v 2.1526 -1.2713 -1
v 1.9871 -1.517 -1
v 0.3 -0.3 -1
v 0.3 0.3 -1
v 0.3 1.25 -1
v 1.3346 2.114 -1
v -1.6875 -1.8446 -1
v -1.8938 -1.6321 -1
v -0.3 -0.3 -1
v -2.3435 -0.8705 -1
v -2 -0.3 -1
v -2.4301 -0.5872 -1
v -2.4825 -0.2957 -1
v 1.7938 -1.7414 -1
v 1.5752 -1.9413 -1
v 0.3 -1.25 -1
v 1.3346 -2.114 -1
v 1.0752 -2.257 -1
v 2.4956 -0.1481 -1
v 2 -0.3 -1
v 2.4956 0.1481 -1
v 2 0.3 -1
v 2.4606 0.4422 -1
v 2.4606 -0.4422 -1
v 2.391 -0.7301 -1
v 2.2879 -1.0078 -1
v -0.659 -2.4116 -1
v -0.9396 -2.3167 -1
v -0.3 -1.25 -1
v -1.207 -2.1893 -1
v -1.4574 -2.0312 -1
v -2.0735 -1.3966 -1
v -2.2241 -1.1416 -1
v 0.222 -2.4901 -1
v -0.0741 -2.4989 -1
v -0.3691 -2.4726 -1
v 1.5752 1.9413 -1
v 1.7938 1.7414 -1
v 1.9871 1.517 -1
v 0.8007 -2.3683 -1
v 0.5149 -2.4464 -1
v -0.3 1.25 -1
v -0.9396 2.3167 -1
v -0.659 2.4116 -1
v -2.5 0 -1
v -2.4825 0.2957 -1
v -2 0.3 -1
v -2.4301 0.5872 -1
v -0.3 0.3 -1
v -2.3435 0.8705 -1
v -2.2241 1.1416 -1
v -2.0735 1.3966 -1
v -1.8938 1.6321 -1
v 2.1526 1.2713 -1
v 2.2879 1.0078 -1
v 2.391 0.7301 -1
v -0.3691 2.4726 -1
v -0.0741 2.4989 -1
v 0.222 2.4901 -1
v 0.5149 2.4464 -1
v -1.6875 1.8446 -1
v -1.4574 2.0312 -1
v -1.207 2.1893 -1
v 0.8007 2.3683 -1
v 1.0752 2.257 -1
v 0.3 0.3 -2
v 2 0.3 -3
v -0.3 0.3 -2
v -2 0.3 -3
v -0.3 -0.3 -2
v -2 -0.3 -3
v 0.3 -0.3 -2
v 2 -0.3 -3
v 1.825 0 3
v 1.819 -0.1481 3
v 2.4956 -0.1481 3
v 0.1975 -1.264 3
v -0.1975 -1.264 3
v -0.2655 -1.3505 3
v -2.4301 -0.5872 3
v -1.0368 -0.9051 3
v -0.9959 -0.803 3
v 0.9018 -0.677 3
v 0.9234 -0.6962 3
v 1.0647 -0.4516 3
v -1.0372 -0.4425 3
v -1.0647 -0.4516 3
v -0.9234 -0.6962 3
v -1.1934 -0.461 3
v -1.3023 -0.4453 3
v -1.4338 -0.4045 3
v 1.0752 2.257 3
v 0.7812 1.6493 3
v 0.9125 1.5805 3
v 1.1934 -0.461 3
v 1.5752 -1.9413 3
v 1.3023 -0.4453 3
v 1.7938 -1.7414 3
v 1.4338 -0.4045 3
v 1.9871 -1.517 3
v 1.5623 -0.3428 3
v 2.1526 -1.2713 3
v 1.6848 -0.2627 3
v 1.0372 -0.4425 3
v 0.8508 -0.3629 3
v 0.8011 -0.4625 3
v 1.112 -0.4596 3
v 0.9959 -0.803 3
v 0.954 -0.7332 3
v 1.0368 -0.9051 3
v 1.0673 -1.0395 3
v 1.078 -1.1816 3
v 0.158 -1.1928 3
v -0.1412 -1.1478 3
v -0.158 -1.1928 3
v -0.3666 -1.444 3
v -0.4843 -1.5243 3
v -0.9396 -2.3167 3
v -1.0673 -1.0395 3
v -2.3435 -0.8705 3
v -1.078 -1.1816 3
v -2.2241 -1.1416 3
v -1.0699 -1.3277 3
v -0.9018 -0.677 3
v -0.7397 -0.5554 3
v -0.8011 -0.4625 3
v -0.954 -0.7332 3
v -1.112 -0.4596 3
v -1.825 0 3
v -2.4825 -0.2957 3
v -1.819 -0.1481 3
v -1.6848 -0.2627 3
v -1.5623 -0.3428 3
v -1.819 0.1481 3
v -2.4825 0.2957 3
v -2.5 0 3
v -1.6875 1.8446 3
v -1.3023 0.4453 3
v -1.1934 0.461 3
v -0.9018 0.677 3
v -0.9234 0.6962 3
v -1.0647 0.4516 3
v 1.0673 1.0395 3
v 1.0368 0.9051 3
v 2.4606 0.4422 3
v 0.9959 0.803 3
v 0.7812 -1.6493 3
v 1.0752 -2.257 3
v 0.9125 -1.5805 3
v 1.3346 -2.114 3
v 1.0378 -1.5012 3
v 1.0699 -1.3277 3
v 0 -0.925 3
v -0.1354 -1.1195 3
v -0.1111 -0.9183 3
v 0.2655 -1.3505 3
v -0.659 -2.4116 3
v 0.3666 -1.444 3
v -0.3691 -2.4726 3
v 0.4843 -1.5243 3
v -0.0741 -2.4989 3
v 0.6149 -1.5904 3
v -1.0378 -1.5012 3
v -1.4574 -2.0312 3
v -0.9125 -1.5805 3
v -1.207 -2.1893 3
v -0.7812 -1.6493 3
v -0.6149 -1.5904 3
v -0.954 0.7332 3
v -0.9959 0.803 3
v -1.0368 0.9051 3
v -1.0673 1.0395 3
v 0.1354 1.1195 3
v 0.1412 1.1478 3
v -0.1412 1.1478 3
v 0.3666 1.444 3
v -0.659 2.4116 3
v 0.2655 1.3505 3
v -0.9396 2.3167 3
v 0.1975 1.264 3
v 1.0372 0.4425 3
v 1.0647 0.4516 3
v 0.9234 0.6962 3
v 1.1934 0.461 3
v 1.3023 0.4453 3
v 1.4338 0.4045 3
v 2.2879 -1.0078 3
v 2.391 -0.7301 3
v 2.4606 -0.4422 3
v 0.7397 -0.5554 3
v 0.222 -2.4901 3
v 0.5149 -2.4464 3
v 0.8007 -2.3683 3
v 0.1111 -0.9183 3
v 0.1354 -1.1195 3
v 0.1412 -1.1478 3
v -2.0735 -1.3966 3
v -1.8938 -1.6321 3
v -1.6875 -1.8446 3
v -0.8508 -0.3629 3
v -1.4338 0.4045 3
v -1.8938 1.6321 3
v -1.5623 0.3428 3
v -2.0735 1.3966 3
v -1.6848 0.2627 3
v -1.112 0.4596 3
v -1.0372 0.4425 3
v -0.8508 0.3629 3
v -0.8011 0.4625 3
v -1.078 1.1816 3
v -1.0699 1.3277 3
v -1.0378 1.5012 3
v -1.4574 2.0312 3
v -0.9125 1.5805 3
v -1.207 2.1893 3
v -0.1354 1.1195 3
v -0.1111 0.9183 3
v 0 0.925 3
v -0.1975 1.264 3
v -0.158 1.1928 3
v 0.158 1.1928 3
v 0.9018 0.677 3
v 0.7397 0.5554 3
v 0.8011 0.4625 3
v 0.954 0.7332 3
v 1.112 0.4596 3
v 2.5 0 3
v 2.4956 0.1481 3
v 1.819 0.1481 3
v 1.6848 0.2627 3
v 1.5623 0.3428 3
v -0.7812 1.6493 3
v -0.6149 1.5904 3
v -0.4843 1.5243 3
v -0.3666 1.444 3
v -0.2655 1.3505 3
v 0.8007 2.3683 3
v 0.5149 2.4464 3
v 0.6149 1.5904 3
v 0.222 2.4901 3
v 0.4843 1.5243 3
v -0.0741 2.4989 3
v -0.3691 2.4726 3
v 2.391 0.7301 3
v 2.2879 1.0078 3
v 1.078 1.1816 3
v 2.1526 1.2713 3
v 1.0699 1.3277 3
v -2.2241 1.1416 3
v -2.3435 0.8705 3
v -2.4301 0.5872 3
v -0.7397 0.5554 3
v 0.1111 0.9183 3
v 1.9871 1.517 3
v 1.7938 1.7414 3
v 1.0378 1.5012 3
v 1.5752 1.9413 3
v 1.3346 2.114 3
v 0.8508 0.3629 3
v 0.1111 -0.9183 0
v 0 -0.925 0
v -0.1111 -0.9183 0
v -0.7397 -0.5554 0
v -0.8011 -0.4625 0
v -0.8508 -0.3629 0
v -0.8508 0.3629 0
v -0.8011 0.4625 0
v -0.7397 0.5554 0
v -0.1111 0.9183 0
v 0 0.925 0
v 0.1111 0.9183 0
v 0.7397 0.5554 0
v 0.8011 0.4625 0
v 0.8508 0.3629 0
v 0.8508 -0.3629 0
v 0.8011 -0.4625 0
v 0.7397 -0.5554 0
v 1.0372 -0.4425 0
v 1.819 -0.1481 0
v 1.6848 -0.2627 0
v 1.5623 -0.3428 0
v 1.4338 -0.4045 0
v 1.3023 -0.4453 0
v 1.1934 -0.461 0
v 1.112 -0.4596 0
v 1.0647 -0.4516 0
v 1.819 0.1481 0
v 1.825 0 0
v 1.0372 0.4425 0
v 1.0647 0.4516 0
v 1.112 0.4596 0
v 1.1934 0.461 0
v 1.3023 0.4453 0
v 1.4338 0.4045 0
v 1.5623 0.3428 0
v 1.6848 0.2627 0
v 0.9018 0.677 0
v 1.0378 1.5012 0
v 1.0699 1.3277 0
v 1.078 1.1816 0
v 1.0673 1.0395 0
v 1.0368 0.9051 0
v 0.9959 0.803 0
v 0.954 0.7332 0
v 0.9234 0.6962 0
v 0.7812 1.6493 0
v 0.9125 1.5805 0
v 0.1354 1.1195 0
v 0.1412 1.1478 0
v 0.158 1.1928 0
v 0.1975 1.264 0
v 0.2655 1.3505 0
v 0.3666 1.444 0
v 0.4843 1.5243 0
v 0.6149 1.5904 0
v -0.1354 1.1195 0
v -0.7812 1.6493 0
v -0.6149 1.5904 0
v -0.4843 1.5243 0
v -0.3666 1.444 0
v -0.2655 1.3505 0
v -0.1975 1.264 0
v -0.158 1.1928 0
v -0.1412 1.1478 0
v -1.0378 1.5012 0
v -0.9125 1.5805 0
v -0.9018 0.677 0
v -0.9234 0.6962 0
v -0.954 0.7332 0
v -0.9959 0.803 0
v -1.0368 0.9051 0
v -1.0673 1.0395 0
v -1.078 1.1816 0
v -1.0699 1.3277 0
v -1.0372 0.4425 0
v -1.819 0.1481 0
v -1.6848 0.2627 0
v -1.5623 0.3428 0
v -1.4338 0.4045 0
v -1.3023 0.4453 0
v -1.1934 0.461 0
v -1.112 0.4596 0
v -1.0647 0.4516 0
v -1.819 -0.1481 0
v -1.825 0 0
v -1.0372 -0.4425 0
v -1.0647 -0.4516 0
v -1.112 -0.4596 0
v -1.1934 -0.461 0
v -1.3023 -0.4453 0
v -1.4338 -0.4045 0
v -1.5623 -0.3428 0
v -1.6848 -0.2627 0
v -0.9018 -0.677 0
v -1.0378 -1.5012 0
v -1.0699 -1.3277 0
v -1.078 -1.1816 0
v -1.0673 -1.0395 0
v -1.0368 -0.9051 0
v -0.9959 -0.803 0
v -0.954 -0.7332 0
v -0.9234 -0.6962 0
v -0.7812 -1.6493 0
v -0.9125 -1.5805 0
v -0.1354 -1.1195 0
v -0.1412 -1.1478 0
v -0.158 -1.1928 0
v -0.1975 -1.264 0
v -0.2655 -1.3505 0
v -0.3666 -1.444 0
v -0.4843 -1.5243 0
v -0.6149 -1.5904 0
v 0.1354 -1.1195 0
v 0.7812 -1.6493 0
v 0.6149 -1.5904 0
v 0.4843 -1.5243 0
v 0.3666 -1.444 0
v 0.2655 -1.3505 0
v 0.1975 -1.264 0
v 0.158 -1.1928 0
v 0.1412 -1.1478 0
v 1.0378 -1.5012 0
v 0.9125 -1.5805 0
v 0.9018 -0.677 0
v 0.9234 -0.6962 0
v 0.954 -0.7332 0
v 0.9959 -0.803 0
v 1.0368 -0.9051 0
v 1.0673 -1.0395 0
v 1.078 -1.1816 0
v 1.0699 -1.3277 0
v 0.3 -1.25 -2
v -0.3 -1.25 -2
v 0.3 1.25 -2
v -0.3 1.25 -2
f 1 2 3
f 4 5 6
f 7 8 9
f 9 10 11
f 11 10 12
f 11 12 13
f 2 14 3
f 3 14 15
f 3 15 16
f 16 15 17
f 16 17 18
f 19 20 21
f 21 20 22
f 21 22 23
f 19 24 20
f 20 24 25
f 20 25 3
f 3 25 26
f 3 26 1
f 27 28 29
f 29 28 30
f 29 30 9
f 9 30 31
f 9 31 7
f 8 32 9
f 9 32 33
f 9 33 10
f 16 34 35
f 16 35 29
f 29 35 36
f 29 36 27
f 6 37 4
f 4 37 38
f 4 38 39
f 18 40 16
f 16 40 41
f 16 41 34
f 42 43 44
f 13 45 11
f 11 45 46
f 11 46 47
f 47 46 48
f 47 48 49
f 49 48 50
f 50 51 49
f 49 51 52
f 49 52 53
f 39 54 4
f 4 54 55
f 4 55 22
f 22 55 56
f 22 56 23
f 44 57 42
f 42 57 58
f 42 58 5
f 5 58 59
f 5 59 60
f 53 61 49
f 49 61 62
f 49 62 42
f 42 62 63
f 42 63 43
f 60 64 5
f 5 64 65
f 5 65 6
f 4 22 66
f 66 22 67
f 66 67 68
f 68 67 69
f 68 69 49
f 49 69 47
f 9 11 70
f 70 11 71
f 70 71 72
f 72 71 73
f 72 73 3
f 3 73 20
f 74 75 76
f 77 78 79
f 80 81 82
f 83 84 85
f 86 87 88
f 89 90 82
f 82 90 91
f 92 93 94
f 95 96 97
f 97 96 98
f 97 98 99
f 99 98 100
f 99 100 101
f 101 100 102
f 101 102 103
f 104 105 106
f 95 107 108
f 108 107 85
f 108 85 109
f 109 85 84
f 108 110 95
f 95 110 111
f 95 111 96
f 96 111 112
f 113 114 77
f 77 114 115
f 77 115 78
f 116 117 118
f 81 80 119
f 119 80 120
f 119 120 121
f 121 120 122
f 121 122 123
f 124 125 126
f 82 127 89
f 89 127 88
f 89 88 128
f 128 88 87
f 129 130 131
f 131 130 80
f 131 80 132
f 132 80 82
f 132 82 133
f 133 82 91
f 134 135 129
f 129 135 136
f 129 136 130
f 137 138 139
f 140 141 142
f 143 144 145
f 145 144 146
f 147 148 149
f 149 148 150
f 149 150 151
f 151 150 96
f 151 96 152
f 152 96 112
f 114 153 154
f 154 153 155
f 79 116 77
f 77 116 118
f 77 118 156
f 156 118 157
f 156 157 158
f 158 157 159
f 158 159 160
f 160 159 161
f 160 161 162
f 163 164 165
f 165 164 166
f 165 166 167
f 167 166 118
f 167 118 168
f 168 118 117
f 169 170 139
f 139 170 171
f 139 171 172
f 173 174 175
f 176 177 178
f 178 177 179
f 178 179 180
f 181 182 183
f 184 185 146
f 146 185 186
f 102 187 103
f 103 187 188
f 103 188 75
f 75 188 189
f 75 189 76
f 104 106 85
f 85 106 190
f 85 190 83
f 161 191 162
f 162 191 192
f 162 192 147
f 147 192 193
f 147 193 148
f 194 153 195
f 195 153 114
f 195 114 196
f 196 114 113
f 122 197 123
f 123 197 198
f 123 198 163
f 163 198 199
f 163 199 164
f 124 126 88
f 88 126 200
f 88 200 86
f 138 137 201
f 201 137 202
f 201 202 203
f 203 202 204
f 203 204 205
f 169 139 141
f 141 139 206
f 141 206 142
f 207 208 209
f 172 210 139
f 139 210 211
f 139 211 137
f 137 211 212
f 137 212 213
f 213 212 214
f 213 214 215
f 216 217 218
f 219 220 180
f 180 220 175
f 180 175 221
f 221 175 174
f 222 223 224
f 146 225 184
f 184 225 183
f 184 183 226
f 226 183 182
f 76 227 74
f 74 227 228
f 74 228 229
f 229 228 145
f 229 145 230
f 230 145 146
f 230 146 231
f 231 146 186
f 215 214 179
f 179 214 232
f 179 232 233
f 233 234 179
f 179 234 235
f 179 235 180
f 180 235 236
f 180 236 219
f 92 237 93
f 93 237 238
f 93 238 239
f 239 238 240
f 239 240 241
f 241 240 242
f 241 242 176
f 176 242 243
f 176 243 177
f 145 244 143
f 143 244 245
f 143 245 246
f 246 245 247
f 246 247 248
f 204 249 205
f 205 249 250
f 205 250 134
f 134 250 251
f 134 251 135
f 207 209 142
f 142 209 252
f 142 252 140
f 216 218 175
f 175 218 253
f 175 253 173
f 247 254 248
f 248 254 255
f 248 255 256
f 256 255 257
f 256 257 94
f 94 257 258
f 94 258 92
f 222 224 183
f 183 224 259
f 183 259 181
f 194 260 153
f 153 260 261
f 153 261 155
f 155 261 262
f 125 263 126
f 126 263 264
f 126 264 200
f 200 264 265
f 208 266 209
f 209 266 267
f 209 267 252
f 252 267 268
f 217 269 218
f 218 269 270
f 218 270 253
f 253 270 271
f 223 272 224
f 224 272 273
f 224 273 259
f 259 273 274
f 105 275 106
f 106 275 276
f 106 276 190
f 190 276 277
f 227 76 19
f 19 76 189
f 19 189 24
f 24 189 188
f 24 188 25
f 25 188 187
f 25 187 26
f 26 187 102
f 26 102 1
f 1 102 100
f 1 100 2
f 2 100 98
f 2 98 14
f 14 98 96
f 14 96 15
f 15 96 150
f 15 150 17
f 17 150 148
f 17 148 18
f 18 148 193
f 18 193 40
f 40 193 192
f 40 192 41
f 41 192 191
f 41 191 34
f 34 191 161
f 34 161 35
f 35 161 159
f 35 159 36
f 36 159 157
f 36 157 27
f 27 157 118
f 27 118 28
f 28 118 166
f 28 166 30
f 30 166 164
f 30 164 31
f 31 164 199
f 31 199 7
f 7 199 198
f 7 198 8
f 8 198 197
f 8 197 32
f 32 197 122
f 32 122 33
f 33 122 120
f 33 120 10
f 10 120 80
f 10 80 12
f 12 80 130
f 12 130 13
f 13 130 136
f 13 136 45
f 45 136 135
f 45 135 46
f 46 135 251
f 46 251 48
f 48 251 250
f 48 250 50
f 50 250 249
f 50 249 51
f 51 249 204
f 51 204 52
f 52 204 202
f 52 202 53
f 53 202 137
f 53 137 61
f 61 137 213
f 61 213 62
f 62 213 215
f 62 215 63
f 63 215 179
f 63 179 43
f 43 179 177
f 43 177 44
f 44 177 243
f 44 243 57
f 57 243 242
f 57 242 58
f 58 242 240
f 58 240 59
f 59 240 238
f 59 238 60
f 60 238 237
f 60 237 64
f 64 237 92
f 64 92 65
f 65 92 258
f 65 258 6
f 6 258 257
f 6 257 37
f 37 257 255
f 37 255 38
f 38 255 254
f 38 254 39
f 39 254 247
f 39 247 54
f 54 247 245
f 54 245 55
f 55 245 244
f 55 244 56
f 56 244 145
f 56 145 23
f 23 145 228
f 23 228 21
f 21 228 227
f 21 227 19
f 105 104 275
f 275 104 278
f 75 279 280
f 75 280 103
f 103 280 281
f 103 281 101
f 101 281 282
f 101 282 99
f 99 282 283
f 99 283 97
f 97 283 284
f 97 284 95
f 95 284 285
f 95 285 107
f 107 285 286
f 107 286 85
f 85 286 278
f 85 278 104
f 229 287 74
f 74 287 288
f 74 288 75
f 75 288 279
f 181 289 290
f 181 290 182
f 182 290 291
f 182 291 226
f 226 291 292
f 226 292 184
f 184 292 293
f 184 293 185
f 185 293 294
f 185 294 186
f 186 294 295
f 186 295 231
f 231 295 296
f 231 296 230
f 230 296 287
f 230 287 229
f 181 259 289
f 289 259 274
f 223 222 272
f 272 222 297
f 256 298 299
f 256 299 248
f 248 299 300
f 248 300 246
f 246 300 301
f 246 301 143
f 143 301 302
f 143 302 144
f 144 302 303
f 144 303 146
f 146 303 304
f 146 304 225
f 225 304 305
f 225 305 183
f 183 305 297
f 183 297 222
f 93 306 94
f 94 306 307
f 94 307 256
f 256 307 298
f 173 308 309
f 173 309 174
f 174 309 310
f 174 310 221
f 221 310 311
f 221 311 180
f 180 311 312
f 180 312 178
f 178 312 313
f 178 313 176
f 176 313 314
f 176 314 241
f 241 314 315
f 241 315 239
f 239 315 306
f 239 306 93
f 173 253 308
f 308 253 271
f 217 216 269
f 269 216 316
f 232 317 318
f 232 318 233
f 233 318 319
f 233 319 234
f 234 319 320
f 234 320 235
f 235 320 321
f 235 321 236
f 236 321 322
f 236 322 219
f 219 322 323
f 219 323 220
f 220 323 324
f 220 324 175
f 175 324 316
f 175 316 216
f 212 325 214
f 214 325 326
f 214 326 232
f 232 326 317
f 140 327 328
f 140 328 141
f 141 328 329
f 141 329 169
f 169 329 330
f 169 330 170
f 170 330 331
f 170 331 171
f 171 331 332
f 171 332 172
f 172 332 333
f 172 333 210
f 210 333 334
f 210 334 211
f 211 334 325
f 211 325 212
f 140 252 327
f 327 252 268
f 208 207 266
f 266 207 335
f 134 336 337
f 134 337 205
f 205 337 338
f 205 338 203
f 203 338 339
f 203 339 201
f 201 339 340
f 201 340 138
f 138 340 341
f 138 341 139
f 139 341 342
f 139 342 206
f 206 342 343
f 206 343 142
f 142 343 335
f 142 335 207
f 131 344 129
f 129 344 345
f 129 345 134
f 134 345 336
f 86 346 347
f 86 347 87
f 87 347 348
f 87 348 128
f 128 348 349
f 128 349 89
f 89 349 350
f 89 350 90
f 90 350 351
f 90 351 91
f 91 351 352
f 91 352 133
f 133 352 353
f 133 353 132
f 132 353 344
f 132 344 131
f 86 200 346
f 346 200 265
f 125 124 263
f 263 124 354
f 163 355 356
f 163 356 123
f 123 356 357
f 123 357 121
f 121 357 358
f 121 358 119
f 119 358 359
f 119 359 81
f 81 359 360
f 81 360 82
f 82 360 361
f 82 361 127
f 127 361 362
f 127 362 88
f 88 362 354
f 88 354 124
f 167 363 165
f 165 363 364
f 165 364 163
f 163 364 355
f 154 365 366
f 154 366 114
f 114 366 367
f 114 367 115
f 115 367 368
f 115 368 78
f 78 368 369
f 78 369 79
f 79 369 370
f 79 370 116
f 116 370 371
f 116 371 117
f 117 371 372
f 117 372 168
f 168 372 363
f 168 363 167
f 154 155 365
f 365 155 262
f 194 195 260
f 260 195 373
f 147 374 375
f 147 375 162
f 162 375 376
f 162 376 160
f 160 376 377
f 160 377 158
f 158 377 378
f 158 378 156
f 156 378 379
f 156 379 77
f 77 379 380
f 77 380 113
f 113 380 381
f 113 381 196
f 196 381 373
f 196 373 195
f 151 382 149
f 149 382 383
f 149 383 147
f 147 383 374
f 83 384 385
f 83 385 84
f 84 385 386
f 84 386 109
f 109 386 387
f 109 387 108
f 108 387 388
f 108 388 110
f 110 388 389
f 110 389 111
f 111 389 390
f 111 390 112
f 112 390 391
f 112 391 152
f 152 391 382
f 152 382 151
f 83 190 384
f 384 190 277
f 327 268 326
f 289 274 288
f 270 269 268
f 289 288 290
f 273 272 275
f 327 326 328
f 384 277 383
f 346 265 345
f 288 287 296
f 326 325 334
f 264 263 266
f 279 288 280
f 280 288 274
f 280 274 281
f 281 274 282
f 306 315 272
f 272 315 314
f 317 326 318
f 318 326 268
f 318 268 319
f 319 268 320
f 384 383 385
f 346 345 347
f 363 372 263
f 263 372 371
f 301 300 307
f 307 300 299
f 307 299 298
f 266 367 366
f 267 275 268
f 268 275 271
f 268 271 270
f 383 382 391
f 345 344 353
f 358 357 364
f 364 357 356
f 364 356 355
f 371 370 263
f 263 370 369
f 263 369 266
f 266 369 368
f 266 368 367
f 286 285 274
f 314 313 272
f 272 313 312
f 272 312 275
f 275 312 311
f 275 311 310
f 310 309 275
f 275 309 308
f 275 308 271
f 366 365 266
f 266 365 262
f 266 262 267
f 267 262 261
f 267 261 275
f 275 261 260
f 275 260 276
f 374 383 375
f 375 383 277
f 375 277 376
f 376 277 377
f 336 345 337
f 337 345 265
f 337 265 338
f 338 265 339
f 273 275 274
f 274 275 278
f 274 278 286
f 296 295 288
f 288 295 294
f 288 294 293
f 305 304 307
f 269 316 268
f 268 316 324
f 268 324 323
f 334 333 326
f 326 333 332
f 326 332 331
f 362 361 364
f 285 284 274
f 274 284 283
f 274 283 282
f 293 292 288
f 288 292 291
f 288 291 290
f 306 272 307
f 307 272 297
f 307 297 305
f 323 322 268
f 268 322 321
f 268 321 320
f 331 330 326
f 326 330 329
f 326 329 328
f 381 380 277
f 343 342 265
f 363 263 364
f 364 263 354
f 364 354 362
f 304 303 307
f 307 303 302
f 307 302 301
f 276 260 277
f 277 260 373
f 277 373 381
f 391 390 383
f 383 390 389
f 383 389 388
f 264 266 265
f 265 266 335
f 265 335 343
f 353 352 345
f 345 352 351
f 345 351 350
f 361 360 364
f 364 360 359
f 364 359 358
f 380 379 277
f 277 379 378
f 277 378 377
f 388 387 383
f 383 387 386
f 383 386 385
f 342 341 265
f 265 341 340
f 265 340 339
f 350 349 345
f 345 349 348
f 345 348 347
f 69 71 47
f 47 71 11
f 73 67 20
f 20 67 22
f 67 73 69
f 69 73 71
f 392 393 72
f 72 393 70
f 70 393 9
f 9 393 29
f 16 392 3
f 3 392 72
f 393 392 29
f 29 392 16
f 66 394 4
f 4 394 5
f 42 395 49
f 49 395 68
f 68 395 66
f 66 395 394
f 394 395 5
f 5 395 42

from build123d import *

# Parameters (mm, degrees)
SKETCH_1_R               = 2.5
SKETCH_1_R_2             = 0.925
EXTRUDE_1_DEPTH          = 3
CUT_EXTRUDE_2_DEPTH      = 5.636809248
PATTERN_CIRCULAR_1_COUNT = 6
EXTRUDE_START            = 1
SKETCH_2_R               = 2.5
EXTRUDE_2_DEPTH          = 1
SKETCH_2_3_W             = 4
SKETCH_2_3_H             = 0.6
EXTRUDE_3_DEPTH          = 2
SKETCH_2_4_W             = 0.6
SKETCH_2_4_H             = 2.5
EXTRUDE_4_DEPTH          = 1


with BuildPart() as part:
    # 草图1 → 凸台-拉伸1 (new body)
    with BuildSketch(Plane.XY):
        Circle(SKETCH_1_R)
        Circle(SKETCH_1_R_2, mode=Mode.SUBTRACT)
    extrude(amount=EXTRUDE_1_DEPTH)

    # 草图1<3> → 切除-拉伸2 (cut, through all)
    with BuildSketch(Plane.XY):
        with BuildLine():
            Line((1.03720071, 0.442455292), (0.85081958, 0.362947713))
            ThreePointArc((0.85081958, 0.362947713), (0.906265169, 0.185225388), (0.925, 0))
            ThreePointArc((0.925, 0), (0.906265169, -0.185225388), (0.85081958, -0.362947713))
            Line((0.85081958, -0.362947713), (1.03720071, -0.442455292))
            add(Edge.make_bspline(
                [(1.03720071, -0.442455292), (1.04510701, -0.445828009), (1.067871965, -0.453596987), (1.113314547, -0.461522157), (1.188023144, -0.464138789), (1.284367459, -0.452433849), (1.404657298, -0.420054467), (1.538436606, -0.361310704), (1.660601931, -0.285147073), (1.748638649, -0.214154324), (1.79986288, -0.166729965), (1.818980117, -0.1481092)],
                knots=[0, 0, 0, 0, 0, 0.005604068, 0.015718248, 0.029959916, 0.048733667, 0.068727063, 0.096888892, 0.125050566, 0.14248965, 0.14248965, 0.14248965, 0.14248965, 0.14248965], degree=4))
            ThreePointArc((1.818980117, -0.1481092), (1.823494408, -0.074115744), (1.825, 0))
            ThreePointArc((1.825, 0), (1.823494408, 0.074115744), (1.818980117, 0.1481092))
            add(Edge.make_bspline(
                [(1.03720071, 0.442455292), (1.04510701, 0.445828009), (1.067871965, 0.453596987), (1.113314547, 0.461522157), (1.188023144, 0.464138789), (1.284367459, 0.452433849), (1.404657298, 0.420054467), (1.538436606, 0.361310704), (1.660601931, 0.285147073), (1.748638649, 0.214154324), (1.79986288, 0.166729965), (1.818980117, 0.1481092)],
                knots=[0, 0, 0, 0, 0, 0.005604068, 0.015718248, 0.029959916, 0.048733667, 0.068727063, 0.096888892, 0.125050566, 0.14248965, 0.14248965, 0.14248965, 0.14248965, 0.14248965], degree=4))
        make_face()
    cut_extrude_2 = extrude(amount=CUT_EXTRUDE_2_DEPTH, mode=Mode.SUBTRACT)

    # 阵列(圆周)1: 切除-拉伸2 ×6 about axis
    pattern_circular_1_axis = Axis((0, 0, 3), (0, 0, 1))
    for i in range(1, PATTERN_CIRCULAR_1_COUNT):
        add(cut_extrude_2.rotate(pattern_circular_1_axis, i * 360 / PATTERN_CIRCULAR_1_COUNT), mode=Mode.SUBTRACT)

    # 草图2 → 凸台-拉伸2 (add)
    with BuildSketch(Plane(origin=(0, 0, 0), x_dir=(-1, 0, 0), z_dir=(0, 0, -1)).offset(EXTRUDE_START)):
        Circle(SKETCH_2_R)
    extrude(amount=-EXTRUDE_2_DEPTH)

    # 草图2<3> → 凸台-拉伸3 (add)
    with BuildSketch(Plane(origin=(0, 0, 0), x_dir=(-1, 0, 0), z_dir=(0, 0, -1)).offset(EXTRUDE_START)):
        Rectangle(SKETCH_2_3_W, SKETCH_2_3_H)
    extrude(amount=EXTRUDE_3_DEPTH)

    # 草图2<4> → 凸台-拉伸4 (add)
    with BuildSketch(Plane(origin=(0, 0, 0), x_dir=(-1, 0, 0), z_dir=(0, 0, -1)).offset(EXTRUDE_START)):
        Rectangle(SKETCH_2_4_W, SKETCH_2_4_H)
    extrude(amount=EXTRUDE_4_DEPTH)


solid = part.part
